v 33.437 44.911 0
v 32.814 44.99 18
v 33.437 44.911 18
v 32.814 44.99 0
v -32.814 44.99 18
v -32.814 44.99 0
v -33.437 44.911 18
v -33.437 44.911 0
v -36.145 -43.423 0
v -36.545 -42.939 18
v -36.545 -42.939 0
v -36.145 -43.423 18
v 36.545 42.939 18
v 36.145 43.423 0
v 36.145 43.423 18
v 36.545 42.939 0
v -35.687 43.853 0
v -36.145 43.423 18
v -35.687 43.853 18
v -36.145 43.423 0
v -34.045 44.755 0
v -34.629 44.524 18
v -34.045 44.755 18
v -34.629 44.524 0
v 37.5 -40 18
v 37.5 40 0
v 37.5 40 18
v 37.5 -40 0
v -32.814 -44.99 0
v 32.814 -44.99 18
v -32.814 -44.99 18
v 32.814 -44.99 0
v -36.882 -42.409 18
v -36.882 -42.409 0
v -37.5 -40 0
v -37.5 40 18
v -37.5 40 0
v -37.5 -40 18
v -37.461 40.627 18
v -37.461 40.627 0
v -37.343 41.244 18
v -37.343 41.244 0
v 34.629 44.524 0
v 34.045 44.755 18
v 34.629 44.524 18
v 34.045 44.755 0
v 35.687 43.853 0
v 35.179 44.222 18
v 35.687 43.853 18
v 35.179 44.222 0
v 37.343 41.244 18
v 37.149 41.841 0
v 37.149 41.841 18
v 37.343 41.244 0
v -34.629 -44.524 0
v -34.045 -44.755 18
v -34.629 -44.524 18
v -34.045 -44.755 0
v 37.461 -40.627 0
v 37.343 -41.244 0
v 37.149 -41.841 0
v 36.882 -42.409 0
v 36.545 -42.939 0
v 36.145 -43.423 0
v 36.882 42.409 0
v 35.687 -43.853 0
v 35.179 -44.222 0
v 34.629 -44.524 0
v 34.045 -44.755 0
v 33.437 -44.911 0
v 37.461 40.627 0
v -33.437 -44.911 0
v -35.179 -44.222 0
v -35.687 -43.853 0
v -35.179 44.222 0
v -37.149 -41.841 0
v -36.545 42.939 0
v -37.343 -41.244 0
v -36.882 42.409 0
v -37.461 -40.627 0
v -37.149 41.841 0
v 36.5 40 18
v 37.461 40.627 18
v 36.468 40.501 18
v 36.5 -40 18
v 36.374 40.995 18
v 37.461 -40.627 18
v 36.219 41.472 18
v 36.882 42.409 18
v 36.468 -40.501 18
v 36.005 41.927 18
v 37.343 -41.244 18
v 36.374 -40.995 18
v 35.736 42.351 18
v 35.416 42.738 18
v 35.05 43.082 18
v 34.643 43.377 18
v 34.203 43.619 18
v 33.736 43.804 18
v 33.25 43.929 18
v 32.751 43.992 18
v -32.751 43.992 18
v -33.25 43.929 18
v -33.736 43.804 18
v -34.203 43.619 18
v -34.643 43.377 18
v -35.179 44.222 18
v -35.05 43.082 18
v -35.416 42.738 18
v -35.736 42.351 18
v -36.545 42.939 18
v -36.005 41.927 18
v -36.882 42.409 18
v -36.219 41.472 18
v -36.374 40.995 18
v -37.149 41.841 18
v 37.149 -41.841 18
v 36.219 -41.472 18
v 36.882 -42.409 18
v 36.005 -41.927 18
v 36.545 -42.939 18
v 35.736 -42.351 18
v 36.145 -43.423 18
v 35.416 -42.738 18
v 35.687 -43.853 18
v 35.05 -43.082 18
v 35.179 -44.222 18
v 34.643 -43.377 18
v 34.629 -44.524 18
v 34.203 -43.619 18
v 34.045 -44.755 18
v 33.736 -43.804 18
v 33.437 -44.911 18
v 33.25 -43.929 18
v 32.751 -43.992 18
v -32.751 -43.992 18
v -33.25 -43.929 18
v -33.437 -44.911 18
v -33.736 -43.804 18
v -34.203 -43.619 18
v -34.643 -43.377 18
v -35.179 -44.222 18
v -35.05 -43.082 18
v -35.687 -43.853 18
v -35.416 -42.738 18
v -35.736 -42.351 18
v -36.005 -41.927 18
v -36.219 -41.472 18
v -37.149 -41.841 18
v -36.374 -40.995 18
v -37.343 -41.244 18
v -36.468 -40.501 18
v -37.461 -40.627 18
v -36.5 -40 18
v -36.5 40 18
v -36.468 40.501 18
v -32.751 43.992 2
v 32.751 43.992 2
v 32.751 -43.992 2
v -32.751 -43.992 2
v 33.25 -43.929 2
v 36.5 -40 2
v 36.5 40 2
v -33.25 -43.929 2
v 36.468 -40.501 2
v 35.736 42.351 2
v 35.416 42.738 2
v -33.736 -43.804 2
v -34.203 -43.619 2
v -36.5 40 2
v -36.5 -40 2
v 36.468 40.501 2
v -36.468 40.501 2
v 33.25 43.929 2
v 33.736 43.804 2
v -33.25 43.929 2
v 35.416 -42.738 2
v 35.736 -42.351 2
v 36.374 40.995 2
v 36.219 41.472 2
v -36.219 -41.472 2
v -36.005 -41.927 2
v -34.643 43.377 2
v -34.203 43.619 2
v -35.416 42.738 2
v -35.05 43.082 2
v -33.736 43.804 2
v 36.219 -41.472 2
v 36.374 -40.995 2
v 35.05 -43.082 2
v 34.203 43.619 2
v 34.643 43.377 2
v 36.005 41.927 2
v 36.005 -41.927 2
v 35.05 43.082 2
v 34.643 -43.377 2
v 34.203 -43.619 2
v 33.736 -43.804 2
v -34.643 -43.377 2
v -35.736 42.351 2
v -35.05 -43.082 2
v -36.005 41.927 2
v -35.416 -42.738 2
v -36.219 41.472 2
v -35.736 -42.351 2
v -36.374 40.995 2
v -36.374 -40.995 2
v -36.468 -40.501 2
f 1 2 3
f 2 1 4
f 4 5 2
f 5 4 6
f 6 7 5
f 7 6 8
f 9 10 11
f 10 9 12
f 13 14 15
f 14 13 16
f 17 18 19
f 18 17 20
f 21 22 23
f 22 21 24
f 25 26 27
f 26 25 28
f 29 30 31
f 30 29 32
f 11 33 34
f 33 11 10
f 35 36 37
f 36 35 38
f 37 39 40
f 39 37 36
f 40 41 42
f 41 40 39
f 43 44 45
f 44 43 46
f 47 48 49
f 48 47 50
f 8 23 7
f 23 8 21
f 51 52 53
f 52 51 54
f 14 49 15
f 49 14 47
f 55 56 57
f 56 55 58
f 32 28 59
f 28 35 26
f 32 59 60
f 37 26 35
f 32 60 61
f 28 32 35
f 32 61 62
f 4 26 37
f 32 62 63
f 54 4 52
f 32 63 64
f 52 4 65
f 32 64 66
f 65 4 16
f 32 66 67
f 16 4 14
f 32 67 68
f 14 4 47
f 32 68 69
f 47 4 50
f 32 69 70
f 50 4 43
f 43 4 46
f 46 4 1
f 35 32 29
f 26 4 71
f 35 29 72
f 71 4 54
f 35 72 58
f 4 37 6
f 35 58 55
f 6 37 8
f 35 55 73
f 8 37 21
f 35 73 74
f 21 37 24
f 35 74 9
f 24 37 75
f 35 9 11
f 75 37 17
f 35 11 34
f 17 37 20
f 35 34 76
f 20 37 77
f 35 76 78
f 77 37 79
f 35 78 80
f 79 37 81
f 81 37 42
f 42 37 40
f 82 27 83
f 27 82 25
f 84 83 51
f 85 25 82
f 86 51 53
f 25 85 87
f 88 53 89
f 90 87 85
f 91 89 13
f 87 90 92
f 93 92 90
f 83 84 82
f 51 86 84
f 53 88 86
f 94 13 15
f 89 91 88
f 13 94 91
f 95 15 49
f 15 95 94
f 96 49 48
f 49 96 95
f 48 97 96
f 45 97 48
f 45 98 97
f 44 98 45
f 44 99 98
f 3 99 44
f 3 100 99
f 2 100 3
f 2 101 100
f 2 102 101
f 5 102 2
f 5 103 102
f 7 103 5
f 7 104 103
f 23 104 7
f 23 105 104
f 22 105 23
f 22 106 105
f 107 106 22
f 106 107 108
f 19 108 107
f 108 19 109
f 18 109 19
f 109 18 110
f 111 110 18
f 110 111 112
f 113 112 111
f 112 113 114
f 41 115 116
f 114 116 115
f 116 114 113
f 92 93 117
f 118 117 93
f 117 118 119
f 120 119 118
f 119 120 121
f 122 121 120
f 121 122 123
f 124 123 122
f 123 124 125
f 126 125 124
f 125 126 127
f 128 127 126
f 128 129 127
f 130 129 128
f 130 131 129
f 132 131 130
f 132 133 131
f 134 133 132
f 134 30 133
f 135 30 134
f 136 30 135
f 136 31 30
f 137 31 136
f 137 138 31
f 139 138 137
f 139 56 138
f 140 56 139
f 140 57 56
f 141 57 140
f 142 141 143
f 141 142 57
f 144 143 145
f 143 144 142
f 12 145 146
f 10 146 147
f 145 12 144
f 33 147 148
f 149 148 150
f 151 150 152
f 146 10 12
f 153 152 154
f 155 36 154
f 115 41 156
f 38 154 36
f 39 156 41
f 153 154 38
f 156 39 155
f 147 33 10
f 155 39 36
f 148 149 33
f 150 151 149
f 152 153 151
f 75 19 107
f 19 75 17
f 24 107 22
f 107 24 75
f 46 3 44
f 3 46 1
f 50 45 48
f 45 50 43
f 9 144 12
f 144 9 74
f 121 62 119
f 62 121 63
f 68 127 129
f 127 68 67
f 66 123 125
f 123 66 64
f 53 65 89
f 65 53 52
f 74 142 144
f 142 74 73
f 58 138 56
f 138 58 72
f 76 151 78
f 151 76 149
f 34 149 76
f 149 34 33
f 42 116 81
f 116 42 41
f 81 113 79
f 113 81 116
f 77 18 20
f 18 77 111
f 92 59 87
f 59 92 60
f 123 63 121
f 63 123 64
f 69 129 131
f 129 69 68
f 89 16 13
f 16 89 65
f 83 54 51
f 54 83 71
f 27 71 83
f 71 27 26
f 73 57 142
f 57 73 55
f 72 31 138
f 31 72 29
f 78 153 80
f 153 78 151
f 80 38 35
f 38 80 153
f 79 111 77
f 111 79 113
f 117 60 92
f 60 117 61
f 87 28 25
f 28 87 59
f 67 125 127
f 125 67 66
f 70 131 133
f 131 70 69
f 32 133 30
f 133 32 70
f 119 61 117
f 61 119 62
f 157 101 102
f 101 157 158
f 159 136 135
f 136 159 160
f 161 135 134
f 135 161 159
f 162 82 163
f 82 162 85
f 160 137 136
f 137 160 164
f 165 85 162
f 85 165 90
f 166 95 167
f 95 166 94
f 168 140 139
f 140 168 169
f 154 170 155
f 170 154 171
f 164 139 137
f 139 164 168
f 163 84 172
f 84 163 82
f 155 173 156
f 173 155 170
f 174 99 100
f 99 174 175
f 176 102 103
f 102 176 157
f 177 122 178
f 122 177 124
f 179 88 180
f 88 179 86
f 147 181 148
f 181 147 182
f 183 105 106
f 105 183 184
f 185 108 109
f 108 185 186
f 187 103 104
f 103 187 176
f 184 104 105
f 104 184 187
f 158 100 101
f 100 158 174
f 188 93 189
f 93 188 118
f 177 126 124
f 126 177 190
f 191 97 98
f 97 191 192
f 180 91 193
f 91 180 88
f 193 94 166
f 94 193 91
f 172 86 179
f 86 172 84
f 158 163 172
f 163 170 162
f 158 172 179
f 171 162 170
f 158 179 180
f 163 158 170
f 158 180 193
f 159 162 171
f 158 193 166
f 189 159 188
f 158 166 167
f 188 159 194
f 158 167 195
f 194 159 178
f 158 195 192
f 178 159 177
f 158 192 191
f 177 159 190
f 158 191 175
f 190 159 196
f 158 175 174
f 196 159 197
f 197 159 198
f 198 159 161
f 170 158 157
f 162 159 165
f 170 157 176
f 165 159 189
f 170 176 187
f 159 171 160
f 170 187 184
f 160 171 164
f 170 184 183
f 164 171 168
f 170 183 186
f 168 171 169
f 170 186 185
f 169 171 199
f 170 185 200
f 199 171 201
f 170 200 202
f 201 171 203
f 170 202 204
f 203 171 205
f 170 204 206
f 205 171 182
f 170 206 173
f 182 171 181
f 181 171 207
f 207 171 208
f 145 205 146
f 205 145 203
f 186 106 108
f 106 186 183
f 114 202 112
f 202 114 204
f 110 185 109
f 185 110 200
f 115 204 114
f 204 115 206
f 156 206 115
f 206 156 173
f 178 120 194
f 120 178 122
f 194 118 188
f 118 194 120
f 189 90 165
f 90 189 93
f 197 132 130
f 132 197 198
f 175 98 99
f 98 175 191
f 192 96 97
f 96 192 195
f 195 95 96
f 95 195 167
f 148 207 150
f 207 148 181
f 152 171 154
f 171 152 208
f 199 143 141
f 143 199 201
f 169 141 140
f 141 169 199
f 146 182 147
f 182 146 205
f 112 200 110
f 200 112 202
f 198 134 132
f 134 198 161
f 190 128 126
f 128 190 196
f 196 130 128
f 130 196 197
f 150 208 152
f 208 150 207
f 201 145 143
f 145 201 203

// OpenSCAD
$fn = 50;


difference() {
	union() {
		hull() {
			translate(v = [-32.5000000000, 40.0000000000, 0]) {
				cylinder(h = 18, r = 5);
			}
			translate(v = [32.5000000000, 40.0000000000, 0]) {
				cylinder(h = 18, r = 5);
			}
			translate(v = [-32.5000000000, -40.0000000000, 0]) {
				cylinder(h = 18, r = 5);
			}
			translate(v = [32.5000000000, -40.0000000000, 0]) {
				cylinder(h = 18, r = 5);
			}
		}
	}
	union() {
		translate(v = [0, 0, 2]) {
			hull() {
				translate(v = [-32.5000000000, 40.0000000000, 0]) {
					cylinder(h = 16, r = 4);
				}
				translate(v = [32.5000000000, 40.0000000000, 0]) {
					cylinder(h = 16, r = 4);
				}
				translate(v = [-32.5000000000, -40.0000000000, 0]) {
					cylinder(h = 16, r = 4);
				}
				translate(v = [32.5000000000, -40.0000000000, 0]) {
					cylinder(h = 16, r = 4);
				}
			}
		}
	}
}
